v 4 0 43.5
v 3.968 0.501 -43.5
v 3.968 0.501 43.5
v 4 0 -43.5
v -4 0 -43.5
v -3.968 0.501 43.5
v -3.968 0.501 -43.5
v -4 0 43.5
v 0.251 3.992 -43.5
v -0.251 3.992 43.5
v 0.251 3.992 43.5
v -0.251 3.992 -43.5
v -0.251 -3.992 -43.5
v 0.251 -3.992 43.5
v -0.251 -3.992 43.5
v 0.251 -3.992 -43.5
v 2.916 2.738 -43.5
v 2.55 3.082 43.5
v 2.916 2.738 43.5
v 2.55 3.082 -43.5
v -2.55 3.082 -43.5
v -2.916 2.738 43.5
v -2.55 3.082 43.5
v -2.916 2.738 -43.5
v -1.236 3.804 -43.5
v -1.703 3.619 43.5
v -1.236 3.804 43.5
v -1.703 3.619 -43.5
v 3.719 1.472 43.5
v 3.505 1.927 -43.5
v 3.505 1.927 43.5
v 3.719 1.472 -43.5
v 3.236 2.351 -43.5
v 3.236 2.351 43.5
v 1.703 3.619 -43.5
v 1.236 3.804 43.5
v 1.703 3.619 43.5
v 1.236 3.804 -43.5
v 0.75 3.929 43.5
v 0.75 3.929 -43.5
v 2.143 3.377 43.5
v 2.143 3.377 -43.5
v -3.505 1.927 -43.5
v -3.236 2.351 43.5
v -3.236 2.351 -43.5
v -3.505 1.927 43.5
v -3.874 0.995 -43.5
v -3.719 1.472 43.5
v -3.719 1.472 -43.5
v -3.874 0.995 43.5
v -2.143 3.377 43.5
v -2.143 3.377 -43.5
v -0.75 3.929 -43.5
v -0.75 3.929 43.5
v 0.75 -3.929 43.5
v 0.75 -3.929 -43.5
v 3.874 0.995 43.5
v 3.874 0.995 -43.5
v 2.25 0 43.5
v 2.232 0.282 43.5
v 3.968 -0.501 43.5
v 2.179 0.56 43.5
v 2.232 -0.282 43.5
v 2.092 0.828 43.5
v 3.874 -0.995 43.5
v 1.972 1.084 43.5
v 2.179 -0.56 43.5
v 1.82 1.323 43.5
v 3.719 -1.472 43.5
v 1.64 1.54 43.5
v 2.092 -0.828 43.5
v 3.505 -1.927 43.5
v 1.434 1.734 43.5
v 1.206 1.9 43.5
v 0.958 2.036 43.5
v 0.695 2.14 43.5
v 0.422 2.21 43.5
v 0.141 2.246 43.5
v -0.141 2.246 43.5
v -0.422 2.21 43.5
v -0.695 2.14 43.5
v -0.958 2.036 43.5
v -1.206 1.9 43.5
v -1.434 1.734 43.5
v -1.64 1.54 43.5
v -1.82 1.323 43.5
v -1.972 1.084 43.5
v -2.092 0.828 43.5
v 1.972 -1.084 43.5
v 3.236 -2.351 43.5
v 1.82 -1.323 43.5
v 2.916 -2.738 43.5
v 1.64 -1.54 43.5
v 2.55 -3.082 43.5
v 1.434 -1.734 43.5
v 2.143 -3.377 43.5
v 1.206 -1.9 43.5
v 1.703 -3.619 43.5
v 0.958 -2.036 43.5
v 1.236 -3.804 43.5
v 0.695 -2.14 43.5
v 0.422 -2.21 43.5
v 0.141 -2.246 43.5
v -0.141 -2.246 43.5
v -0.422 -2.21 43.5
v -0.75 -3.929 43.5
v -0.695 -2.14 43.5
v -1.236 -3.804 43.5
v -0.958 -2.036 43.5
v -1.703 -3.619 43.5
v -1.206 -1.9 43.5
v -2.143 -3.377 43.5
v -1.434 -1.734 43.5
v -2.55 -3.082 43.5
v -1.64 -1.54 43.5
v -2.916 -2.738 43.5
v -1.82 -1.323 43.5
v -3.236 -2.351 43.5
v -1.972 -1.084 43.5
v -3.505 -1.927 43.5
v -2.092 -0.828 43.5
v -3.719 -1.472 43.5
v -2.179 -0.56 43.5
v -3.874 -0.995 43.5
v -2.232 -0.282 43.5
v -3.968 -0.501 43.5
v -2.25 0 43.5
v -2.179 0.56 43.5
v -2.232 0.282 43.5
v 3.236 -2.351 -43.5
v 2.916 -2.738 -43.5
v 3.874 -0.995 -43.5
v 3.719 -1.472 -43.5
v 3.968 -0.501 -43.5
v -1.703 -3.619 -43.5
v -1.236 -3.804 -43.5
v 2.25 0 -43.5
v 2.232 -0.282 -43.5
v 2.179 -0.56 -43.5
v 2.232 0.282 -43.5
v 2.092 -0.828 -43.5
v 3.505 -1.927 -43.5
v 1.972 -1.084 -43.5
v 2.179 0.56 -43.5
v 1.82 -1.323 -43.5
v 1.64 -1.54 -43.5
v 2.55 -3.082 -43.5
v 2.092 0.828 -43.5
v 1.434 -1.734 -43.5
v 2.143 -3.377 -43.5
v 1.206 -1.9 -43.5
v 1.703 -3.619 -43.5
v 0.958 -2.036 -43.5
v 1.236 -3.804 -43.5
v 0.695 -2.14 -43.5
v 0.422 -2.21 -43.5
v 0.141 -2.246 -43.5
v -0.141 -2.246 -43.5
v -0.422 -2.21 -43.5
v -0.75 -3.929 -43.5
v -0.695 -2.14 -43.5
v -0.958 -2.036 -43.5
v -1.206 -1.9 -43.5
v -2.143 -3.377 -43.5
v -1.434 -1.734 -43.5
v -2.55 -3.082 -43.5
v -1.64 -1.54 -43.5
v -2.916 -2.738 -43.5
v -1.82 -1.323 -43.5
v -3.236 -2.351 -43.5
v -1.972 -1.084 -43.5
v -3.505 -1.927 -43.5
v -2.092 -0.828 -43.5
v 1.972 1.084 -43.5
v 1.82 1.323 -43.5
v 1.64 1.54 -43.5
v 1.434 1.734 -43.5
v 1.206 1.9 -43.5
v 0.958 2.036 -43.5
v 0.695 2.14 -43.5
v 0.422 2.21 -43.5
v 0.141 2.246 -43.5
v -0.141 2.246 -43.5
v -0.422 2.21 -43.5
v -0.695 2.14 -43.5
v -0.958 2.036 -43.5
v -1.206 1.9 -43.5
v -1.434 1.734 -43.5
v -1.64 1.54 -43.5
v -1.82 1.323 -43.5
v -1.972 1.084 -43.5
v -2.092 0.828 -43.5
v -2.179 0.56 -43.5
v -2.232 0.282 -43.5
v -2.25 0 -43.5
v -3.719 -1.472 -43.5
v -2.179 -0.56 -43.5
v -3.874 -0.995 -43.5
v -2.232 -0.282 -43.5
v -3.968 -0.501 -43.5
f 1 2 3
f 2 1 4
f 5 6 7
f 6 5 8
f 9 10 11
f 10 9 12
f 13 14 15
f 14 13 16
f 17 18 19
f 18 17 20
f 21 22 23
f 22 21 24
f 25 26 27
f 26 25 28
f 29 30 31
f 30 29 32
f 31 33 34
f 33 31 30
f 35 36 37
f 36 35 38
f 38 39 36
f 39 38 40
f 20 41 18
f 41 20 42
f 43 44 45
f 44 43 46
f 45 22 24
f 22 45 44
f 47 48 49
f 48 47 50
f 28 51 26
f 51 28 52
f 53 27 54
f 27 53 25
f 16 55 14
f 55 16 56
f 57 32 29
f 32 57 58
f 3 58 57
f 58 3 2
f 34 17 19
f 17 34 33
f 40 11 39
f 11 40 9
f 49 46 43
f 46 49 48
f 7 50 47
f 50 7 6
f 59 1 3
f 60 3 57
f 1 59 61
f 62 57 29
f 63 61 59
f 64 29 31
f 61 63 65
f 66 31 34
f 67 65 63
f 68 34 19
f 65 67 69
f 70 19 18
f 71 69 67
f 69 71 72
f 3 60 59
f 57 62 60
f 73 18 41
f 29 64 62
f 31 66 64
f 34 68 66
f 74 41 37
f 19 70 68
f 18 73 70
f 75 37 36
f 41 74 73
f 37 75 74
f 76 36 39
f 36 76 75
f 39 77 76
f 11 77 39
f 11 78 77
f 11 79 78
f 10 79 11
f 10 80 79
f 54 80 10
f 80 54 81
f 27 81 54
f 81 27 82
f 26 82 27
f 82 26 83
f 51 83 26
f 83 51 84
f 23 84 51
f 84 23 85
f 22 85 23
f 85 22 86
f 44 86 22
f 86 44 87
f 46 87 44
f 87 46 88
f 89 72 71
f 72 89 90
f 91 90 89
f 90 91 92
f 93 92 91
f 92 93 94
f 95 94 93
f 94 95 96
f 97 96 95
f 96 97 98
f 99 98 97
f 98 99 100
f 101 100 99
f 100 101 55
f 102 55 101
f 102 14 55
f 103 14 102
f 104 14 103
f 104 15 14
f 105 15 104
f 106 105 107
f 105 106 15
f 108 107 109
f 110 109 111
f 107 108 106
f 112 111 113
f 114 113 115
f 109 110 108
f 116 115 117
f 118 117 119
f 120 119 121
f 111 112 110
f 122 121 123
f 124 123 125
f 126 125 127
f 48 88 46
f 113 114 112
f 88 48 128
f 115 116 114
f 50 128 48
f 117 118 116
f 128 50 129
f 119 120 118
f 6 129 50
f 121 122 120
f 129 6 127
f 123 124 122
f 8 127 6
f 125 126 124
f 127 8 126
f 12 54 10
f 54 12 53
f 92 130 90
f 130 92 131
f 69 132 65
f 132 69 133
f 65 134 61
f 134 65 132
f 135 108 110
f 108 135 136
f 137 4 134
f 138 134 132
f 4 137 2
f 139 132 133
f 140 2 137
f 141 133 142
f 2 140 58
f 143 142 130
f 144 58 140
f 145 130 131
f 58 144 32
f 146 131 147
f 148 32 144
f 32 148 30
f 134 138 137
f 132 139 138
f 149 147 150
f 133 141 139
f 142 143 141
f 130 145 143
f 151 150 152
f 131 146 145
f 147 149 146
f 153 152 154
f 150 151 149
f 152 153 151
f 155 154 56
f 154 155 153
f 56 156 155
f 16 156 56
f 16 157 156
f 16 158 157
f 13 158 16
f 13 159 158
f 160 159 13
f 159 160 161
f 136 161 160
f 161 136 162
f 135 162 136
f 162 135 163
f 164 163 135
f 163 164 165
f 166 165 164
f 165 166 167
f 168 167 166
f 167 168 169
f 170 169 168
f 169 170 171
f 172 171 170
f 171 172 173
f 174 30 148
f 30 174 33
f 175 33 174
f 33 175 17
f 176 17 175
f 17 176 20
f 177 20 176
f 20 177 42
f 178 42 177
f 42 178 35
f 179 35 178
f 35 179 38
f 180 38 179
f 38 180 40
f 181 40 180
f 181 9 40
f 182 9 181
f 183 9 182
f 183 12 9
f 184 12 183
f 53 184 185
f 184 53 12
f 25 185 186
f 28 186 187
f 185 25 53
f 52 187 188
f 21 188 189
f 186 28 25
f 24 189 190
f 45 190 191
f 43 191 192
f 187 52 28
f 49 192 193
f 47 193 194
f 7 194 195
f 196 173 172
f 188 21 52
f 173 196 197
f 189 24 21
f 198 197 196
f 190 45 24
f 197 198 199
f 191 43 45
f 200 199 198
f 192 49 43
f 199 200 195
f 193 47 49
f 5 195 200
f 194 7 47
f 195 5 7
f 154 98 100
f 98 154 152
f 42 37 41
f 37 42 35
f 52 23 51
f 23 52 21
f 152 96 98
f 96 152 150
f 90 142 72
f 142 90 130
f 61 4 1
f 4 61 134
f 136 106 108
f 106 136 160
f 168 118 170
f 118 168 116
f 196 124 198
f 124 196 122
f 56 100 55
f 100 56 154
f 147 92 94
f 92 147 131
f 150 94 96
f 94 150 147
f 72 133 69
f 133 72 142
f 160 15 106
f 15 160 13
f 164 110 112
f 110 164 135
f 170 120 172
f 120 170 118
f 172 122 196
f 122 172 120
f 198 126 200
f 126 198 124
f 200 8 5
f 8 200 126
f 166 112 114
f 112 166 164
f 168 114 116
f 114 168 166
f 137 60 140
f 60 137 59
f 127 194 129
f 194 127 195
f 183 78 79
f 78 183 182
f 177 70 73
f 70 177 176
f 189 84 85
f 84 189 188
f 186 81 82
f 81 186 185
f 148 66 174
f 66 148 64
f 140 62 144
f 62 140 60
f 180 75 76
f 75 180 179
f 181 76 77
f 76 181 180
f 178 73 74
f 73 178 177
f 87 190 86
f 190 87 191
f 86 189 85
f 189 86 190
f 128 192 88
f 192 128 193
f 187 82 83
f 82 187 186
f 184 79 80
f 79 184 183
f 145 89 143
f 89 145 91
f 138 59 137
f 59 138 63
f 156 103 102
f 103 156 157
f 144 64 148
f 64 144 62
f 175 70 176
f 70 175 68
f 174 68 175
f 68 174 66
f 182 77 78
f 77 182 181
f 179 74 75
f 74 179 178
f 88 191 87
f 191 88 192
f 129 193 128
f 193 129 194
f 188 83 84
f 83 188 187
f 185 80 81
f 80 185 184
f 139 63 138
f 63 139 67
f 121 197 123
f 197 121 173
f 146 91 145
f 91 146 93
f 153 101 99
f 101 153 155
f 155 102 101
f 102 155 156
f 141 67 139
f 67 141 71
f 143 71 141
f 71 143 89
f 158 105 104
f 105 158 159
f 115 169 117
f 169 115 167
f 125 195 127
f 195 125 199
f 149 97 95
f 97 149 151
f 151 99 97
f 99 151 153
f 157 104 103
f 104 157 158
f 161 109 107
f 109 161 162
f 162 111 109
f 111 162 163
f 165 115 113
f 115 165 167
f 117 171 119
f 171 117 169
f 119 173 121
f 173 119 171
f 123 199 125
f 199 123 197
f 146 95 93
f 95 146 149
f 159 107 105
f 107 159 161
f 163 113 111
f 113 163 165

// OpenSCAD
$fn = 50;


difference() {
	union() {
		translate(v = [0, 0, -43.5000000000]) {
			cylinder(h = 87, r = 4.0000000000);
		}
	}
	union() {
		translate(v = [0, 0, -100.0000000000]) {
			cylinder(h = 200, r = 2.2500000000);
		}
	}
}
